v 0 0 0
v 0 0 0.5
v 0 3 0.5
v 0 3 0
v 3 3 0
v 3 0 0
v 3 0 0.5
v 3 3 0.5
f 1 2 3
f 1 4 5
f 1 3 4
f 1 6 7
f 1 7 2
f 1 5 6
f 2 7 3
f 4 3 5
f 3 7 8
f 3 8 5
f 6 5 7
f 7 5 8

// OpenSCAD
/* Warning, this is a very basic generator with a lot of approximation 
input data : [UQFN, MTX, 3x3x0.5mm, 16, , A, C04-00211A]
generated by com.zoubworld.electronics.cad.model3d.Basic
Date : Sun Feb 15 10:50:48 CET 2026
*/

//body
color("black")
translate([0,0,0])
cube([3.0,3.0,0.5], center=false);
